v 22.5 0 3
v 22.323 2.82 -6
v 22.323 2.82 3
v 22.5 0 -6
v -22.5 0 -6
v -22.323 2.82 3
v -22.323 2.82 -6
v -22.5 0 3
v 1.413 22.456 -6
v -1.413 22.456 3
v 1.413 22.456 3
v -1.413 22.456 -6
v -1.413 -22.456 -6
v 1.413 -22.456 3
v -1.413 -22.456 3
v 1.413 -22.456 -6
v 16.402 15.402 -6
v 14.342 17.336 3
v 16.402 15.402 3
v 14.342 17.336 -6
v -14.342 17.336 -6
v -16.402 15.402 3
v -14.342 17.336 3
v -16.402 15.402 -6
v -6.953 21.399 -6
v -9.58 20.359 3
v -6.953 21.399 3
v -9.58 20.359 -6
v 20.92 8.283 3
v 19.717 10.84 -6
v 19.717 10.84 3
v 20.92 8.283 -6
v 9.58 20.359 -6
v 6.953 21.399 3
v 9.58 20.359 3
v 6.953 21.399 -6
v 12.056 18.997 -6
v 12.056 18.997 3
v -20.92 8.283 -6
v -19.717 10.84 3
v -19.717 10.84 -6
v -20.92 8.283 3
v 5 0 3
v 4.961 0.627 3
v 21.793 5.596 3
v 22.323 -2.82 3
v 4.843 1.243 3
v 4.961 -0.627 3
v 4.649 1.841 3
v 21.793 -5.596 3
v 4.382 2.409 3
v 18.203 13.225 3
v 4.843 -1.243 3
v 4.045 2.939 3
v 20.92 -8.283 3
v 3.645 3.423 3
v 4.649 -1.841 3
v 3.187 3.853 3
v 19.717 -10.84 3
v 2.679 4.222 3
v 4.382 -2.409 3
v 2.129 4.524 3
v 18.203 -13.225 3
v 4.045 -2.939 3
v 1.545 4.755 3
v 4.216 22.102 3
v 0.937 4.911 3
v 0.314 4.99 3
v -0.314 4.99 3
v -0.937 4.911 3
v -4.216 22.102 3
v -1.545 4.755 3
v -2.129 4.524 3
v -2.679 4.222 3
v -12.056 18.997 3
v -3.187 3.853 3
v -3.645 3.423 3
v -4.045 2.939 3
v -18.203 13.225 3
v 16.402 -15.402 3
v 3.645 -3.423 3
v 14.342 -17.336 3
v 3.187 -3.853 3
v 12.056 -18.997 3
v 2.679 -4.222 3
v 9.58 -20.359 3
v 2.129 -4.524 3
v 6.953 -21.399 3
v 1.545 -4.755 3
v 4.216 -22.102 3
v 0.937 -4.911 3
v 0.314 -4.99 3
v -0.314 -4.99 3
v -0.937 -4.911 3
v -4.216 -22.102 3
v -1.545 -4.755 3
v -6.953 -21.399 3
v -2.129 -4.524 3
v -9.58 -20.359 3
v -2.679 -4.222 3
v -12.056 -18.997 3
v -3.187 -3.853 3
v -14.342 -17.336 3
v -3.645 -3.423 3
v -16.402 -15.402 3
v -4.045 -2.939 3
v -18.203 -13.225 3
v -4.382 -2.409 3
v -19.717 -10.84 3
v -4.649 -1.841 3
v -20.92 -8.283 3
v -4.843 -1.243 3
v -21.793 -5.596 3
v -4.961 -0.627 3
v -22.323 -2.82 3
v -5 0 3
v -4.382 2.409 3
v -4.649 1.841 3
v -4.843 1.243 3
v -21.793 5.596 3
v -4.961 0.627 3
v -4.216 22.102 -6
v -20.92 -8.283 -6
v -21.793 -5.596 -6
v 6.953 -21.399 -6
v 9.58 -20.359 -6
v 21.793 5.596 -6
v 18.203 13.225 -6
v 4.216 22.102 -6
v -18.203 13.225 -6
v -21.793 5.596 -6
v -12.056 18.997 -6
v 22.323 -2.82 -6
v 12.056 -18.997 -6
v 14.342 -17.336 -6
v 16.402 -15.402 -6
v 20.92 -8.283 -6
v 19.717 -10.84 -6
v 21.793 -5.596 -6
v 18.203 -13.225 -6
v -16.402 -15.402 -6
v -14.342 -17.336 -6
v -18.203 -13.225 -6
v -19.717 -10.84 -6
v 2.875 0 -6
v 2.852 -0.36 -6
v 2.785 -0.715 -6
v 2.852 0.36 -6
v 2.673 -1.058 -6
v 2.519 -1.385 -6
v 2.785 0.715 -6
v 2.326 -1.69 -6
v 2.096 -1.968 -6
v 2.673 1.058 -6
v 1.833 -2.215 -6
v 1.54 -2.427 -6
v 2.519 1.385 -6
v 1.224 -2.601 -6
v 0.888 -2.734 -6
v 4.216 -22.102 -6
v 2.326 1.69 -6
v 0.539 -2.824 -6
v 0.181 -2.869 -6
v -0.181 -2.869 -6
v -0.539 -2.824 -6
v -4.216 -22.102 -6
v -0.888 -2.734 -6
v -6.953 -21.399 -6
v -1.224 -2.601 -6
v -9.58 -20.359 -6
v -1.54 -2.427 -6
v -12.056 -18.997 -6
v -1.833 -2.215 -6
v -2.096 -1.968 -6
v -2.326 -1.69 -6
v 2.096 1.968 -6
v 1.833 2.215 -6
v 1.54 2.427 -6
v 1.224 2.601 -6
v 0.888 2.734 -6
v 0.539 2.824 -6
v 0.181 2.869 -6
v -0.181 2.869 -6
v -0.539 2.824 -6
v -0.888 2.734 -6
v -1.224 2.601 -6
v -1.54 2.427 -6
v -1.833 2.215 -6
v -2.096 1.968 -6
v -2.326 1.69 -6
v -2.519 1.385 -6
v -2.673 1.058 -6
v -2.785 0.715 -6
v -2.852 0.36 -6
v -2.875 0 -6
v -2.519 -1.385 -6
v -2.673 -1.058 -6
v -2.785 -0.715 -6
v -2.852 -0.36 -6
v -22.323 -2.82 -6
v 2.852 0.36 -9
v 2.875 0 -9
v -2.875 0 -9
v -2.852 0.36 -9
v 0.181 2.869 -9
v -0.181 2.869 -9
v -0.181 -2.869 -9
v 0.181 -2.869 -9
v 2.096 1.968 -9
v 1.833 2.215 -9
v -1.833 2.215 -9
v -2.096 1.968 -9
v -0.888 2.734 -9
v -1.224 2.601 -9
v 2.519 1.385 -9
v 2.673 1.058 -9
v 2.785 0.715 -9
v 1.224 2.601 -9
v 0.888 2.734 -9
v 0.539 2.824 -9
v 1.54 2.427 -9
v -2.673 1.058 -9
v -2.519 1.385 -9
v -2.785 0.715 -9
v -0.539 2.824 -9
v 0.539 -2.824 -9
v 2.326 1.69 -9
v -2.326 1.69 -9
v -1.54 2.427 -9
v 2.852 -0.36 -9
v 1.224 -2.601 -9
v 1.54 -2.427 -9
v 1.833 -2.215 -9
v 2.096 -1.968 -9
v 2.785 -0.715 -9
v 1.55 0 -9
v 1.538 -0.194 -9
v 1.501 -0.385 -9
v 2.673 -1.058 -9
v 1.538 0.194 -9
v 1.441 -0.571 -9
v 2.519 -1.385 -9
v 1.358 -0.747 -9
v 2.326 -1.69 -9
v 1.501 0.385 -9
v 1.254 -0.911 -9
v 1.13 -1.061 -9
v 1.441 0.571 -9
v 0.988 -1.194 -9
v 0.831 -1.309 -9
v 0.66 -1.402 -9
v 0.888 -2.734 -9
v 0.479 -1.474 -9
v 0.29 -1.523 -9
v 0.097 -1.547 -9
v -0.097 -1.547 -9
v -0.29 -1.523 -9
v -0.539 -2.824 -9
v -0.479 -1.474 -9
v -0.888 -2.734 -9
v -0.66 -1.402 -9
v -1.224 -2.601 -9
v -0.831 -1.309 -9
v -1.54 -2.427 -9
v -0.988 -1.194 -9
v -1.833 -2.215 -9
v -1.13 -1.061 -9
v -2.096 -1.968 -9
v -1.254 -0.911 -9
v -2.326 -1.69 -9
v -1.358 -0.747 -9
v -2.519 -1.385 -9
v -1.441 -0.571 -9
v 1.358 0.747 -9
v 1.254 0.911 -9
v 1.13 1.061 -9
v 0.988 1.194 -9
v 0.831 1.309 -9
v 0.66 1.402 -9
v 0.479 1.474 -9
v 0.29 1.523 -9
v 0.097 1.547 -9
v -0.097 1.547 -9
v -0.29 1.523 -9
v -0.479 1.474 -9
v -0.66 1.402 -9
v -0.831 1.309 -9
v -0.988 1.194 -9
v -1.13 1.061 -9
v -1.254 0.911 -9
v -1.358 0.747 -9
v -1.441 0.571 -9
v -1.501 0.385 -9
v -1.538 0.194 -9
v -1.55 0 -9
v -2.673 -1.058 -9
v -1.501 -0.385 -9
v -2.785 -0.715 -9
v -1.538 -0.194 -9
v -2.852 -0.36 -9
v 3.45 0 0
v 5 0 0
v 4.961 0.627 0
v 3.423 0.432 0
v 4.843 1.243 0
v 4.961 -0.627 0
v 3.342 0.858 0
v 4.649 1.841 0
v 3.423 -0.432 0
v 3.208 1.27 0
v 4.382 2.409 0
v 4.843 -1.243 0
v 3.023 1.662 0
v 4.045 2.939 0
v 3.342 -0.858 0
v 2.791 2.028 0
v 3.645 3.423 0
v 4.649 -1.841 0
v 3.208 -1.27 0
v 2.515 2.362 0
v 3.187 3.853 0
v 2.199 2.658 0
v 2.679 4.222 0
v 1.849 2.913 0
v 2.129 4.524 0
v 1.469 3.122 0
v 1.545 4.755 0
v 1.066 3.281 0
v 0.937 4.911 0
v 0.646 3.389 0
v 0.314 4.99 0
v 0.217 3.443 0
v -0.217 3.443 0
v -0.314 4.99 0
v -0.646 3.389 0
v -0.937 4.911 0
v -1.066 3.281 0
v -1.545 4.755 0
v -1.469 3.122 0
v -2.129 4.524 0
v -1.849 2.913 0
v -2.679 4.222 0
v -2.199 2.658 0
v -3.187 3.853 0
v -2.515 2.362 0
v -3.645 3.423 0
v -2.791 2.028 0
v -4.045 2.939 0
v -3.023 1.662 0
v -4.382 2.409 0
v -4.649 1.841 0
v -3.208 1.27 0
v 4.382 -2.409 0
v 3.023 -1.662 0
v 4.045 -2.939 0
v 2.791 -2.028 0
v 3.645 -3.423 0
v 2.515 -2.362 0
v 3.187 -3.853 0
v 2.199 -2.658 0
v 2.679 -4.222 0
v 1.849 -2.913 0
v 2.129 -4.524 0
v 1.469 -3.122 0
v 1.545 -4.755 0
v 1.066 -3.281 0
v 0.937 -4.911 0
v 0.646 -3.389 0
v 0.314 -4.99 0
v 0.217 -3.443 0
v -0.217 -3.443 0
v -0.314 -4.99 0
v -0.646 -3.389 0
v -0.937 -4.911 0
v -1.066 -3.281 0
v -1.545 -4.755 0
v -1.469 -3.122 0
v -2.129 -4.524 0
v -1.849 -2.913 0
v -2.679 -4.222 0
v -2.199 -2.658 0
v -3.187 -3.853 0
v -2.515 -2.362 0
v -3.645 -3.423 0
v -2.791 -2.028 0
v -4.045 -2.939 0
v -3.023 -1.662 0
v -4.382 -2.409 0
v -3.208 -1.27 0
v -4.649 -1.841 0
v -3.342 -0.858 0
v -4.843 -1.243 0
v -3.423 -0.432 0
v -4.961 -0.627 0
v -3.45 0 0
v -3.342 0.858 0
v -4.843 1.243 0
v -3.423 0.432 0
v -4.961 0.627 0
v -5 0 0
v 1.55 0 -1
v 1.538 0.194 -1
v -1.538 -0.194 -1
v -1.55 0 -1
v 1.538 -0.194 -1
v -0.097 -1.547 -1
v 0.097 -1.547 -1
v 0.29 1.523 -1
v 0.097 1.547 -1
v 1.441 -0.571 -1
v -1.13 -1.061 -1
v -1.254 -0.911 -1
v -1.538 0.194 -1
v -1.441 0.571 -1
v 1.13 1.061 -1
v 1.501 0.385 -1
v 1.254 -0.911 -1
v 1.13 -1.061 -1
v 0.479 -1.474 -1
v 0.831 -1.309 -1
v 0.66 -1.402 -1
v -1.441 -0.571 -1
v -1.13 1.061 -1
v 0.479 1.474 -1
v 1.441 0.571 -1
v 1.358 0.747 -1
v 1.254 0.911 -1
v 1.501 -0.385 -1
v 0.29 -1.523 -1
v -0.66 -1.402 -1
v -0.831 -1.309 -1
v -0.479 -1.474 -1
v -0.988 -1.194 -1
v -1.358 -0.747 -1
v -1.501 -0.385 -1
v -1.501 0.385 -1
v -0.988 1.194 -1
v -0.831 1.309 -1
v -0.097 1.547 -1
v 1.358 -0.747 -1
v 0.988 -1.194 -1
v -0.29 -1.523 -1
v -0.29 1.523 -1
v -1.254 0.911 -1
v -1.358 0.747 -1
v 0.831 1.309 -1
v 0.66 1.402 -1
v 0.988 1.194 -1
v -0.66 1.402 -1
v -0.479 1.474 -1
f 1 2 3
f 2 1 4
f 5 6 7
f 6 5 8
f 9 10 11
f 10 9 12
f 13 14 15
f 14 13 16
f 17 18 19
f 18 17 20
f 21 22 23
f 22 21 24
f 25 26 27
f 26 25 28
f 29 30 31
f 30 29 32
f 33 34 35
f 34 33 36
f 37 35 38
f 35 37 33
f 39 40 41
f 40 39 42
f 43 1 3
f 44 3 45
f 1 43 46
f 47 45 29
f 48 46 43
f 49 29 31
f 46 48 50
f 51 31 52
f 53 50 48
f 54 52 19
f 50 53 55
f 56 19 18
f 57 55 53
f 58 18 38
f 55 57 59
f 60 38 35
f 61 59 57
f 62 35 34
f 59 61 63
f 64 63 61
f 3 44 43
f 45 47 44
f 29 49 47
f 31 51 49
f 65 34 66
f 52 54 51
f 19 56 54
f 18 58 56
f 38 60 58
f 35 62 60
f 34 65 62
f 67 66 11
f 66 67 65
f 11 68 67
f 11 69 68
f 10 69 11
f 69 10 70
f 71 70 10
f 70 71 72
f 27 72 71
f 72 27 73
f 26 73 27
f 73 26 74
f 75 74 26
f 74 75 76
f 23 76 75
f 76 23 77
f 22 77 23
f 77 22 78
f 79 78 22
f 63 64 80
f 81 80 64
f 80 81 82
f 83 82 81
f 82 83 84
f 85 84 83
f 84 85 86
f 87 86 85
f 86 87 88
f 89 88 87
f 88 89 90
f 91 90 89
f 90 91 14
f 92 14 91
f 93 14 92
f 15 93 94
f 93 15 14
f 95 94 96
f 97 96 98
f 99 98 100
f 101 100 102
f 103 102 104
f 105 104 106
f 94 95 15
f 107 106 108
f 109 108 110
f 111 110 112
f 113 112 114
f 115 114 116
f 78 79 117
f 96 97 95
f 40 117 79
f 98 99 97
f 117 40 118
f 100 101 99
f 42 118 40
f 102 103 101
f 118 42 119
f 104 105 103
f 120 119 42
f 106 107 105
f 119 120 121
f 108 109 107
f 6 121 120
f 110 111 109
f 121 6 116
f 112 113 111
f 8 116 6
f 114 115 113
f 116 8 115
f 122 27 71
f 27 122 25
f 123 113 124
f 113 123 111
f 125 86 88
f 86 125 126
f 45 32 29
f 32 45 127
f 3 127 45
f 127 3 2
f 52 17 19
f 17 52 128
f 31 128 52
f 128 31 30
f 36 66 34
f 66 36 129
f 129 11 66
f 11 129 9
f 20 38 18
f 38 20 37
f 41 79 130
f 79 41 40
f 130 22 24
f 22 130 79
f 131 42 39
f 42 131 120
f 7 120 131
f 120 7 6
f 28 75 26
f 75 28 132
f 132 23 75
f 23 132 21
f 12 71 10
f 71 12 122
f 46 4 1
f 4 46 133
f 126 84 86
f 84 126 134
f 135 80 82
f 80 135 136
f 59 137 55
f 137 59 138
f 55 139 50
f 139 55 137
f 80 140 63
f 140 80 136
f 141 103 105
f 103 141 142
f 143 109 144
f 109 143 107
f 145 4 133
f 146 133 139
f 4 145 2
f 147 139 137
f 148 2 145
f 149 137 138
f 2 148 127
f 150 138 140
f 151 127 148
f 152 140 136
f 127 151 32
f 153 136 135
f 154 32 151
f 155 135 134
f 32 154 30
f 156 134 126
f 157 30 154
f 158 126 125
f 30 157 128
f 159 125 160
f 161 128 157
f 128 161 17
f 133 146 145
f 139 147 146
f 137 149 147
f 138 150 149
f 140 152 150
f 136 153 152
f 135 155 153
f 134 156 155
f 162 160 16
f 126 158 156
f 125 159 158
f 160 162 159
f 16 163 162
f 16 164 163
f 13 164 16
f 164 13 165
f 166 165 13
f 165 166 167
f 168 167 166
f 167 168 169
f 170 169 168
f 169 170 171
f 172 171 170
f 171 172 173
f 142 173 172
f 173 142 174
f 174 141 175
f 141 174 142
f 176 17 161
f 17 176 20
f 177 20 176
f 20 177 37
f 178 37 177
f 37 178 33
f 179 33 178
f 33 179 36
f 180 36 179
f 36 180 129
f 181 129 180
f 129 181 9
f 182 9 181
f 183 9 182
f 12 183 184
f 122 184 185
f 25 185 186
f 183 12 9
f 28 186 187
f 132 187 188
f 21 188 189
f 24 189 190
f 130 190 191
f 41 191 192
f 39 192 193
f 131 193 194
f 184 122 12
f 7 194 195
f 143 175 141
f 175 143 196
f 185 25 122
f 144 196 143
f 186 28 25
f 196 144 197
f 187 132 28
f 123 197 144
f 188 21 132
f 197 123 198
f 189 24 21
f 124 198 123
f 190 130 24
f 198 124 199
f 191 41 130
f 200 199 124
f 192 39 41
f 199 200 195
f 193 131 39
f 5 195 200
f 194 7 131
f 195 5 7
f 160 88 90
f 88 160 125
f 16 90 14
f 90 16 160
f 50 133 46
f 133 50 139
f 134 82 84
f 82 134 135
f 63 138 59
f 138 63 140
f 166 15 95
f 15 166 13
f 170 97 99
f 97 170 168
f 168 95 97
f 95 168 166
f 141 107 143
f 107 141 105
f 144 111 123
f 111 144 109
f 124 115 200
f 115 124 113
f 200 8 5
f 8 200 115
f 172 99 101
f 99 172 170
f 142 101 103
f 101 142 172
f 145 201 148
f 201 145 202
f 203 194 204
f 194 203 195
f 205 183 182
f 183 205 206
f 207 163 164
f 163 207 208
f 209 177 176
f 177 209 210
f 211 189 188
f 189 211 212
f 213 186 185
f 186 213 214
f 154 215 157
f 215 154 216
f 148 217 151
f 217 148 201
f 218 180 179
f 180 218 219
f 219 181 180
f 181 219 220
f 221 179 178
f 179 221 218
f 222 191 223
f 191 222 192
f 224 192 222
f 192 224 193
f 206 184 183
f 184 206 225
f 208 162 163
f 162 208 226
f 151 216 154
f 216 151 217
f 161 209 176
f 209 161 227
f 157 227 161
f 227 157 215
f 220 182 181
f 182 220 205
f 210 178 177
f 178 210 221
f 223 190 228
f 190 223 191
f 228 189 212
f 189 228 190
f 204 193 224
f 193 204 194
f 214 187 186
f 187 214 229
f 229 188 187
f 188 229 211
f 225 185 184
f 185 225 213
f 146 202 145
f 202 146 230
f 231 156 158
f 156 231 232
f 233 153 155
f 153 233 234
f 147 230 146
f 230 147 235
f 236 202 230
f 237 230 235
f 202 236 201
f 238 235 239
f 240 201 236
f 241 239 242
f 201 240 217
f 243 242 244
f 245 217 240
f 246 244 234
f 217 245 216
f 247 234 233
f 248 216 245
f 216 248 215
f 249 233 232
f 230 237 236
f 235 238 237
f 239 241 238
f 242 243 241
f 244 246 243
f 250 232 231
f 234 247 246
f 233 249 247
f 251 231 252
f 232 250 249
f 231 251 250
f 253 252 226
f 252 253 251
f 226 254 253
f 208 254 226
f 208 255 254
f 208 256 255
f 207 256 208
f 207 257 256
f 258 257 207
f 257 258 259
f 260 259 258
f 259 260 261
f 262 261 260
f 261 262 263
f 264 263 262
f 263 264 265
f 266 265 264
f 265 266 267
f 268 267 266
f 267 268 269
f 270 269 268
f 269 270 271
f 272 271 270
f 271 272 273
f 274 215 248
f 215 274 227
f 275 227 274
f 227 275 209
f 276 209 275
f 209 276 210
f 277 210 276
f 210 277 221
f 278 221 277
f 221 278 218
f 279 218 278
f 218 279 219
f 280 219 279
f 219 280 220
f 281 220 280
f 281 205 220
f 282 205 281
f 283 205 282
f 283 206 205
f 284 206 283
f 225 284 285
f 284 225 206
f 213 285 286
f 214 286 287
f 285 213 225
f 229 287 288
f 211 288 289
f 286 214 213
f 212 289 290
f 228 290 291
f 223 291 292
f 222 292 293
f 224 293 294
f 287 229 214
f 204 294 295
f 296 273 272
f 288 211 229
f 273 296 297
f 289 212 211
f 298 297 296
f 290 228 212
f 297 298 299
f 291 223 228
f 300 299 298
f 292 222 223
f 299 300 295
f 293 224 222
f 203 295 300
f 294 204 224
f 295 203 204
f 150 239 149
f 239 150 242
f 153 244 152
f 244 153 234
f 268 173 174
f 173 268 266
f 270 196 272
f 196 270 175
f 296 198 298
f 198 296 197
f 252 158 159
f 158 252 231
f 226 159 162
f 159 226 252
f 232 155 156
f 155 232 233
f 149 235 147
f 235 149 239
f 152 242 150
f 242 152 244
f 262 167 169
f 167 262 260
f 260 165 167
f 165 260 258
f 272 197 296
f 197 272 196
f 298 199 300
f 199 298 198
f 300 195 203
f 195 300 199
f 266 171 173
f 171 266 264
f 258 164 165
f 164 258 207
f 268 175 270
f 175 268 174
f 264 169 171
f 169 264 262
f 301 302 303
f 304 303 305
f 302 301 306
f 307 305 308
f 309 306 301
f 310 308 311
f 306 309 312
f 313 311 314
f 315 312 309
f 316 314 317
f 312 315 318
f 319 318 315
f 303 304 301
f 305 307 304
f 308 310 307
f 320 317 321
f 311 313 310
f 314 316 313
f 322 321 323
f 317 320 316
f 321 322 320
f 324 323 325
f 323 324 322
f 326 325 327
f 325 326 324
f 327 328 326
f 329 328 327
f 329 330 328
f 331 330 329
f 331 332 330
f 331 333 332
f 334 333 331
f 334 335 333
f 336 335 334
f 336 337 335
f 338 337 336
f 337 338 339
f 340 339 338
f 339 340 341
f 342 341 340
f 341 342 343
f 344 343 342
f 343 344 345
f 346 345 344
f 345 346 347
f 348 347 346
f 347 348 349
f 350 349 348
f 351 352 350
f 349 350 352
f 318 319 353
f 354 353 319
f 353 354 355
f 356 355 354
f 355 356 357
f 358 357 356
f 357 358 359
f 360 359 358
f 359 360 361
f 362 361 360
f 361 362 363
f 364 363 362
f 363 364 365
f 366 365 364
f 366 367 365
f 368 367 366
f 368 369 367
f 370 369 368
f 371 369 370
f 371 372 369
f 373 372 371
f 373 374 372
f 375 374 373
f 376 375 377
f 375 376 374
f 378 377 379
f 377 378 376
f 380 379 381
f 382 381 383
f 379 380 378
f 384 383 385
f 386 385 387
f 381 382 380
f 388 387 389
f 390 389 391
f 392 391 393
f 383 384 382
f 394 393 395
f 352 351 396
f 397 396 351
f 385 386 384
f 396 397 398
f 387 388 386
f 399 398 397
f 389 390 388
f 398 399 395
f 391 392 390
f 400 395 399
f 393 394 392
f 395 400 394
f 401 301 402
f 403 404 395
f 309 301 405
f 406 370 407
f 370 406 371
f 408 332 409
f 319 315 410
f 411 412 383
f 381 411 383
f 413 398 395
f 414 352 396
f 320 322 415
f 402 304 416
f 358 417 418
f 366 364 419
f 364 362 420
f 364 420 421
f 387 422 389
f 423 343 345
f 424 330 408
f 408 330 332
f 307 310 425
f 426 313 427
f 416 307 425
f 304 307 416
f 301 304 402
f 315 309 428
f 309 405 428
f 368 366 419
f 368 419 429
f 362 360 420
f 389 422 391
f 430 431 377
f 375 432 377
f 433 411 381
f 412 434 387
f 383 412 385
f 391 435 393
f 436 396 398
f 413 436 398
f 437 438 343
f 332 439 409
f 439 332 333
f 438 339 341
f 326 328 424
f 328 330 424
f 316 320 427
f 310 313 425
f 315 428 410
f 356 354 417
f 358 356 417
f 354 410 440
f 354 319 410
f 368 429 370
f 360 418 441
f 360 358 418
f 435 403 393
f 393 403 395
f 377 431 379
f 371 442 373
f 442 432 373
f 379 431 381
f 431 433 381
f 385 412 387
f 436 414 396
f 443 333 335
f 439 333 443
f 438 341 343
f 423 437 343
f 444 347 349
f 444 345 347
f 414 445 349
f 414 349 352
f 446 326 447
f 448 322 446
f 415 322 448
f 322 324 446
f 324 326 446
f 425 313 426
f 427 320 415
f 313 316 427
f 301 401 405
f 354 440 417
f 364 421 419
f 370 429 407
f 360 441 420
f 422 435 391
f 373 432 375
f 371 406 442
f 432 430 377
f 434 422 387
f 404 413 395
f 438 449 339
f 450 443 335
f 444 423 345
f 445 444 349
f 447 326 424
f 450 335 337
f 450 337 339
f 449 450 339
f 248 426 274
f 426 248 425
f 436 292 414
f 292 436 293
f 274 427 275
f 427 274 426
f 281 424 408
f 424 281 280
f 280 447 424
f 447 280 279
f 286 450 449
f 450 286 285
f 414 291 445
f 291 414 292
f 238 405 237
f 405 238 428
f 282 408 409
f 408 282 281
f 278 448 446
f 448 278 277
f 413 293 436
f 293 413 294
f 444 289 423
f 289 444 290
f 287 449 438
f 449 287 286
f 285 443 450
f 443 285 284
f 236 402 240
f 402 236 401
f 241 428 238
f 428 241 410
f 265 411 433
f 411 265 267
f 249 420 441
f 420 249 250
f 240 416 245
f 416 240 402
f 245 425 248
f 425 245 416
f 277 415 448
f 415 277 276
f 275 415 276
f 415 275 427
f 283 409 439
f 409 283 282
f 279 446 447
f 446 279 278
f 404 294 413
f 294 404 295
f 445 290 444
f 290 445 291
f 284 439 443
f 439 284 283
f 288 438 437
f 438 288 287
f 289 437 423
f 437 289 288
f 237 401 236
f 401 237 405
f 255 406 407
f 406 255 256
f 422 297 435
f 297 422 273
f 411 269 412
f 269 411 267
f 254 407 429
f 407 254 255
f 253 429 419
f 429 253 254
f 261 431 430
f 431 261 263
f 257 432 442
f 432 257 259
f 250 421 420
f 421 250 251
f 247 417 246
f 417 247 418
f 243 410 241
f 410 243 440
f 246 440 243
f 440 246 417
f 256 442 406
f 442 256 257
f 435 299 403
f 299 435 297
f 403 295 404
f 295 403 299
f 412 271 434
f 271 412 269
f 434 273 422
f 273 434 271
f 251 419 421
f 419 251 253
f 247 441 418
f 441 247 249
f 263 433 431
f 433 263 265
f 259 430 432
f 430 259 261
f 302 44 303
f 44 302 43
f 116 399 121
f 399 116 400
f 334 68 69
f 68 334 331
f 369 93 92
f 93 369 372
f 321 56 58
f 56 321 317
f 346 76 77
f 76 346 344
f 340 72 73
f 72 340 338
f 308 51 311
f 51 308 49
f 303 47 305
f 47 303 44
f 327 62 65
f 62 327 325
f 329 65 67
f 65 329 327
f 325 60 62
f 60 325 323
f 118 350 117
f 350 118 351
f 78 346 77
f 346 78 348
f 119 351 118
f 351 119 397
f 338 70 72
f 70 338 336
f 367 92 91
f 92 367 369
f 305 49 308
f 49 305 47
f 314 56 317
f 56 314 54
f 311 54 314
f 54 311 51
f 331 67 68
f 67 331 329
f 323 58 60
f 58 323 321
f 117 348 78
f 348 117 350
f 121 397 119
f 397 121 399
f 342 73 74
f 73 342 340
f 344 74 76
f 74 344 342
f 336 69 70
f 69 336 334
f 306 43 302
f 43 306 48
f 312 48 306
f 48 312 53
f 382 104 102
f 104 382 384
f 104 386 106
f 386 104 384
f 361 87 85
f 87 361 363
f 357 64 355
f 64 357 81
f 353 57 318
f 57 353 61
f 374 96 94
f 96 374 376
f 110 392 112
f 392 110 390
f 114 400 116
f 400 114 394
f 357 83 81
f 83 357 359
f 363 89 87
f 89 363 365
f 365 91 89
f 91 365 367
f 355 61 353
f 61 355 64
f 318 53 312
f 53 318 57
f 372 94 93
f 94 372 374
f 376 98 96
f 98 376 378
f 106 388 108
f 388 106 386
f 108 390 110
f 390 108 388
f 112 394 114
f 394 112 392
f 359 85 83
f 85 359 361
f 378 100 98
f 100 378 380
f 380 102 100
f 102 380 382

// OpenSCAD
$fn = 50;

difference() {
	union() {
		translate(v = [0, 0, -6.0]) {
			cylinder(h = 9, r = 22.5);
		}
		#translate(v = [0, 0, -9.0]) {
			cylinder(h = 9, r = 2.875);
		}
	}
	union() {
		translate(v = [0, 0, 0]) {
			rotate(a = [0, 0, 0]) {
				difference() {
					union() {
						translate(v = [0, 0, -9.0]) {
							cylinder(h = 9, r = 1.25);
						}
						translate(v = [0, 0, -1.0]) {
							cylinder(h = 1.0, r1 = 1.55, r2 = 3.45);
						}
						translate(v = [0, 0, -9.0]) {
							cylinder(h = 9, r = 1.55);
						}
						translate(v = [0, 0, -9.0]) {
							cylinder(h = 9, r = 1.25);
						}
					}
					union();
				}
			}
		}
		#cylinder(h = 3, r = 5.0);
	}
}
